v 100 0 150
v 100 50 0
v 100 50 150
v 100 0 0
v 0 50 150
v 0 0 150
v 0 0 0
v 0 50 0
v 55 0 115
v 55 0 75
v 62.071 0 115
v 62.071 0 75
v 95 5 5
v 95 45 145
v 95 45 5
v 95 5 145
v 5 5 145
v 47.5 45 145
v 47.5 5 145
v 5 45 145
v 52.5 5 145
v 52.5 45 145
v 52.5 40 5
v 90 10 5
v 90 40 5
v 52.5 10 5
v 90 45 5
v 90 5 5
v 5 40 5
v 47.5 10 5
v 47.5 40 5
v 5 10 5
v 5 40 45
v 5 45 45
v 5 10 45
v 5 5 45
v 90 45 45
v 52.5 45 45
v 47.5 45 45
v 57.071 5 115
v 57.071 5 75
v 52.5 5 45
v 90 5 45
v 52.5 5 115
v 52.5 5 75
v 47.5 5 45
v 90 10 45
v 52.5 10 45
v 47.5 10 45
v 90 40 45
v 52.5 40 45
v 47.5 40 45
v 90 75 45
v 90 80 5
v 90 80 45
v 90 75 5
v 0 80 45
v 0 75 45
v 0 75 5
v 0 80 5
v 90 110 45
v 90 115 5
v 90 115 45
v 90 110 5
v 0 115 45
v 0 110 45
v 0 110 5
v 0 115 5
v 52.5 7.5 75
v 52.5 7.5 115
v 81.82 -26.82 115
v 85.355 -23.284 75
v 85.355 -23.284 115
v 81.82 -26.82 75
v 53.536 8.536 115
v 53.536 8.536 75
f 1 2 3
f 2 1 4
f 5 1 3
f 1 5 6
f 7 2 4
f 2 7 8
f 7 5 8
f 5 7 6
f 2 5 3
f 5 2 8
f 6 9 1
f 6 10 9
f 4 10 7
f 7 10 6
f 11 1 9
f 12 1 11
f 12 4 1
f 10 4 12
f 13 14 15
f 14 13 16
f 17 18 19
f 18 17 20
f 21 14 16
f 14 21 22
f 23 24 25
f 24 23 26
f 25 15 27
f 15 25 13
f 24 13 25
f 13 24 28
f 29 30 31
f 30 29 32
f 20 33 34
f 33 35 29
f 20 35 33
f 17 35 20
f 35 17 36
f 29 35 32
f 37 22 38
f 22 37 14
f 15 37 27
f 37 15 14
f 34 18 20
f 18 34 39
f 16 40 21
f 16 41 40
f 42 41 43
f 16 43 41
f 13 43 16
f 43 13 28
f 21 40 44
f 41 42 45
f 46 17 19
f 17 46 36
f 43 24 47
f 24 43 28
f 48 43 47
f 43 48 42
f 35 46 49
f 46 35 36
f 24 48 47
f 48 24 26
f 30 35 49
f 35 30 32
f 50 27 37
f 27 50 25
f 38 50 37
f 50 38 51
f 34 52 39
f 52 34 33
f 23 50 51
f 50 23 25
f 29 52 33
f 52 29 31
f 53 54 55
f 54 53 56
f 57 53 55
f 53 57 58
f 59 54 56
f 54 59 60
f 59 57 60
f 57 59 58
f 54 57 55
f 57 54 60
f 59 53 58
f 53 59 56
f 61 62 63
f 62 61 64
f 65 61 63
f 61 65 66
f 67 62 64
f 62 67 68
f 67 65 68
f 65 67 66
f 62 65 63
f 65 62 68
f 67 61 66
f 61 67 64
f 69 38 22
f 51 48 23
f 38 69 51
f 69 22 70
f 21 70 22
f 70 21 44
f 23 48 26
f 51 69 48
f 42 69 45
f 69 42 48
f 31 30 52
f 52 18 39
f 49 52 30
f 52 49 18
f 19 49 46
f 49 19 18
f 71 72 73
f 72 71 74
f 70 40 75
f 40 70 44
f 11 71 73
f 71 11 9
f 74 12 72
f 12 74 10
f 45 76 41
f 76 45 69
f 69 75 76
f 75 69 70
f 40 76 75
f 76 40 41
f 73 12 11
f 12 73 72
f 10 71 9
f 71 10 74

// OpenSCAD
// Dimensions
outer_frame_width = 100;
outer_frame_height = 150;
outer_frame_depth = 50;
outer_frame_thickness = 5;

shelf_thickness = 5;
shelf_spacing = 30;

vertical_divider_thickness = 5;

angled_support_thickness = 5;
angled_support_angle = 45; // degrees

// Outer Frame
module outer_frame() {
    difference() {
        cube([outer_frame_width, outer_frame_depth, outer_frame_height]);
        translate([outer_frame_thickness, outer_frame_thickness, outer_frame_thickness])
            cube([outer_frame_width - 2 * outer_frame_thickness, 
                  outer_frame_depth - 2 * outer_frame_thickness, 
                  outer_frame_height - 2 * outer_frame_thickness]);
    }
}

// Horizontal Shelf
module horizontal_shelf(y_position) {
    translate([0, y_position, outer_frame_thickness])
        cube([outer_frame_width - 2 * outer_frame_thickness, shelf_thickness, outer_frame_depth - 2 * outer_frame_thickness]);
}

// Vertical Divider
module vertical_divider() {
    translate([(outer_frame_width - vertical_divider_thickness) / 2, outer_frame_thickness, outer_frame_thickness])
        cube([vertical_divider_thickness, outer_frame_depth - 2 * outer_frame_thickness, outer_frame_height - 2 * outer_frame_thickness]);
}

// Angled Support Panel
module angled_support_panel() {
    translate([outer_frame_width / 2, outer_frame_thickness, outer_frame_height / 2])
        rotate([0, 0, -angled_support_angle])
            cube([outer_frame_width / 2 - outer_frame_thickness, angled_support_thickness, outer_frame_depth - 2 * outer_frame_thickness]);
}

// Assemble the model
module model() {
    // Layer 1: Outer Frame
    outer_frame();

    // Layer 2-5: Horizontal Shelves
    for (i = [0:3]) {
        horizontal_shelf(outer_frame_thickness + i * (shelf_spacing + shelf_thickness));
    }

    // Layer 6: Vertical Divider
    vertical_divider();

    // Layer 7: Angled Support Panel
    angled_support_panel();
}

// Render the model
model();
